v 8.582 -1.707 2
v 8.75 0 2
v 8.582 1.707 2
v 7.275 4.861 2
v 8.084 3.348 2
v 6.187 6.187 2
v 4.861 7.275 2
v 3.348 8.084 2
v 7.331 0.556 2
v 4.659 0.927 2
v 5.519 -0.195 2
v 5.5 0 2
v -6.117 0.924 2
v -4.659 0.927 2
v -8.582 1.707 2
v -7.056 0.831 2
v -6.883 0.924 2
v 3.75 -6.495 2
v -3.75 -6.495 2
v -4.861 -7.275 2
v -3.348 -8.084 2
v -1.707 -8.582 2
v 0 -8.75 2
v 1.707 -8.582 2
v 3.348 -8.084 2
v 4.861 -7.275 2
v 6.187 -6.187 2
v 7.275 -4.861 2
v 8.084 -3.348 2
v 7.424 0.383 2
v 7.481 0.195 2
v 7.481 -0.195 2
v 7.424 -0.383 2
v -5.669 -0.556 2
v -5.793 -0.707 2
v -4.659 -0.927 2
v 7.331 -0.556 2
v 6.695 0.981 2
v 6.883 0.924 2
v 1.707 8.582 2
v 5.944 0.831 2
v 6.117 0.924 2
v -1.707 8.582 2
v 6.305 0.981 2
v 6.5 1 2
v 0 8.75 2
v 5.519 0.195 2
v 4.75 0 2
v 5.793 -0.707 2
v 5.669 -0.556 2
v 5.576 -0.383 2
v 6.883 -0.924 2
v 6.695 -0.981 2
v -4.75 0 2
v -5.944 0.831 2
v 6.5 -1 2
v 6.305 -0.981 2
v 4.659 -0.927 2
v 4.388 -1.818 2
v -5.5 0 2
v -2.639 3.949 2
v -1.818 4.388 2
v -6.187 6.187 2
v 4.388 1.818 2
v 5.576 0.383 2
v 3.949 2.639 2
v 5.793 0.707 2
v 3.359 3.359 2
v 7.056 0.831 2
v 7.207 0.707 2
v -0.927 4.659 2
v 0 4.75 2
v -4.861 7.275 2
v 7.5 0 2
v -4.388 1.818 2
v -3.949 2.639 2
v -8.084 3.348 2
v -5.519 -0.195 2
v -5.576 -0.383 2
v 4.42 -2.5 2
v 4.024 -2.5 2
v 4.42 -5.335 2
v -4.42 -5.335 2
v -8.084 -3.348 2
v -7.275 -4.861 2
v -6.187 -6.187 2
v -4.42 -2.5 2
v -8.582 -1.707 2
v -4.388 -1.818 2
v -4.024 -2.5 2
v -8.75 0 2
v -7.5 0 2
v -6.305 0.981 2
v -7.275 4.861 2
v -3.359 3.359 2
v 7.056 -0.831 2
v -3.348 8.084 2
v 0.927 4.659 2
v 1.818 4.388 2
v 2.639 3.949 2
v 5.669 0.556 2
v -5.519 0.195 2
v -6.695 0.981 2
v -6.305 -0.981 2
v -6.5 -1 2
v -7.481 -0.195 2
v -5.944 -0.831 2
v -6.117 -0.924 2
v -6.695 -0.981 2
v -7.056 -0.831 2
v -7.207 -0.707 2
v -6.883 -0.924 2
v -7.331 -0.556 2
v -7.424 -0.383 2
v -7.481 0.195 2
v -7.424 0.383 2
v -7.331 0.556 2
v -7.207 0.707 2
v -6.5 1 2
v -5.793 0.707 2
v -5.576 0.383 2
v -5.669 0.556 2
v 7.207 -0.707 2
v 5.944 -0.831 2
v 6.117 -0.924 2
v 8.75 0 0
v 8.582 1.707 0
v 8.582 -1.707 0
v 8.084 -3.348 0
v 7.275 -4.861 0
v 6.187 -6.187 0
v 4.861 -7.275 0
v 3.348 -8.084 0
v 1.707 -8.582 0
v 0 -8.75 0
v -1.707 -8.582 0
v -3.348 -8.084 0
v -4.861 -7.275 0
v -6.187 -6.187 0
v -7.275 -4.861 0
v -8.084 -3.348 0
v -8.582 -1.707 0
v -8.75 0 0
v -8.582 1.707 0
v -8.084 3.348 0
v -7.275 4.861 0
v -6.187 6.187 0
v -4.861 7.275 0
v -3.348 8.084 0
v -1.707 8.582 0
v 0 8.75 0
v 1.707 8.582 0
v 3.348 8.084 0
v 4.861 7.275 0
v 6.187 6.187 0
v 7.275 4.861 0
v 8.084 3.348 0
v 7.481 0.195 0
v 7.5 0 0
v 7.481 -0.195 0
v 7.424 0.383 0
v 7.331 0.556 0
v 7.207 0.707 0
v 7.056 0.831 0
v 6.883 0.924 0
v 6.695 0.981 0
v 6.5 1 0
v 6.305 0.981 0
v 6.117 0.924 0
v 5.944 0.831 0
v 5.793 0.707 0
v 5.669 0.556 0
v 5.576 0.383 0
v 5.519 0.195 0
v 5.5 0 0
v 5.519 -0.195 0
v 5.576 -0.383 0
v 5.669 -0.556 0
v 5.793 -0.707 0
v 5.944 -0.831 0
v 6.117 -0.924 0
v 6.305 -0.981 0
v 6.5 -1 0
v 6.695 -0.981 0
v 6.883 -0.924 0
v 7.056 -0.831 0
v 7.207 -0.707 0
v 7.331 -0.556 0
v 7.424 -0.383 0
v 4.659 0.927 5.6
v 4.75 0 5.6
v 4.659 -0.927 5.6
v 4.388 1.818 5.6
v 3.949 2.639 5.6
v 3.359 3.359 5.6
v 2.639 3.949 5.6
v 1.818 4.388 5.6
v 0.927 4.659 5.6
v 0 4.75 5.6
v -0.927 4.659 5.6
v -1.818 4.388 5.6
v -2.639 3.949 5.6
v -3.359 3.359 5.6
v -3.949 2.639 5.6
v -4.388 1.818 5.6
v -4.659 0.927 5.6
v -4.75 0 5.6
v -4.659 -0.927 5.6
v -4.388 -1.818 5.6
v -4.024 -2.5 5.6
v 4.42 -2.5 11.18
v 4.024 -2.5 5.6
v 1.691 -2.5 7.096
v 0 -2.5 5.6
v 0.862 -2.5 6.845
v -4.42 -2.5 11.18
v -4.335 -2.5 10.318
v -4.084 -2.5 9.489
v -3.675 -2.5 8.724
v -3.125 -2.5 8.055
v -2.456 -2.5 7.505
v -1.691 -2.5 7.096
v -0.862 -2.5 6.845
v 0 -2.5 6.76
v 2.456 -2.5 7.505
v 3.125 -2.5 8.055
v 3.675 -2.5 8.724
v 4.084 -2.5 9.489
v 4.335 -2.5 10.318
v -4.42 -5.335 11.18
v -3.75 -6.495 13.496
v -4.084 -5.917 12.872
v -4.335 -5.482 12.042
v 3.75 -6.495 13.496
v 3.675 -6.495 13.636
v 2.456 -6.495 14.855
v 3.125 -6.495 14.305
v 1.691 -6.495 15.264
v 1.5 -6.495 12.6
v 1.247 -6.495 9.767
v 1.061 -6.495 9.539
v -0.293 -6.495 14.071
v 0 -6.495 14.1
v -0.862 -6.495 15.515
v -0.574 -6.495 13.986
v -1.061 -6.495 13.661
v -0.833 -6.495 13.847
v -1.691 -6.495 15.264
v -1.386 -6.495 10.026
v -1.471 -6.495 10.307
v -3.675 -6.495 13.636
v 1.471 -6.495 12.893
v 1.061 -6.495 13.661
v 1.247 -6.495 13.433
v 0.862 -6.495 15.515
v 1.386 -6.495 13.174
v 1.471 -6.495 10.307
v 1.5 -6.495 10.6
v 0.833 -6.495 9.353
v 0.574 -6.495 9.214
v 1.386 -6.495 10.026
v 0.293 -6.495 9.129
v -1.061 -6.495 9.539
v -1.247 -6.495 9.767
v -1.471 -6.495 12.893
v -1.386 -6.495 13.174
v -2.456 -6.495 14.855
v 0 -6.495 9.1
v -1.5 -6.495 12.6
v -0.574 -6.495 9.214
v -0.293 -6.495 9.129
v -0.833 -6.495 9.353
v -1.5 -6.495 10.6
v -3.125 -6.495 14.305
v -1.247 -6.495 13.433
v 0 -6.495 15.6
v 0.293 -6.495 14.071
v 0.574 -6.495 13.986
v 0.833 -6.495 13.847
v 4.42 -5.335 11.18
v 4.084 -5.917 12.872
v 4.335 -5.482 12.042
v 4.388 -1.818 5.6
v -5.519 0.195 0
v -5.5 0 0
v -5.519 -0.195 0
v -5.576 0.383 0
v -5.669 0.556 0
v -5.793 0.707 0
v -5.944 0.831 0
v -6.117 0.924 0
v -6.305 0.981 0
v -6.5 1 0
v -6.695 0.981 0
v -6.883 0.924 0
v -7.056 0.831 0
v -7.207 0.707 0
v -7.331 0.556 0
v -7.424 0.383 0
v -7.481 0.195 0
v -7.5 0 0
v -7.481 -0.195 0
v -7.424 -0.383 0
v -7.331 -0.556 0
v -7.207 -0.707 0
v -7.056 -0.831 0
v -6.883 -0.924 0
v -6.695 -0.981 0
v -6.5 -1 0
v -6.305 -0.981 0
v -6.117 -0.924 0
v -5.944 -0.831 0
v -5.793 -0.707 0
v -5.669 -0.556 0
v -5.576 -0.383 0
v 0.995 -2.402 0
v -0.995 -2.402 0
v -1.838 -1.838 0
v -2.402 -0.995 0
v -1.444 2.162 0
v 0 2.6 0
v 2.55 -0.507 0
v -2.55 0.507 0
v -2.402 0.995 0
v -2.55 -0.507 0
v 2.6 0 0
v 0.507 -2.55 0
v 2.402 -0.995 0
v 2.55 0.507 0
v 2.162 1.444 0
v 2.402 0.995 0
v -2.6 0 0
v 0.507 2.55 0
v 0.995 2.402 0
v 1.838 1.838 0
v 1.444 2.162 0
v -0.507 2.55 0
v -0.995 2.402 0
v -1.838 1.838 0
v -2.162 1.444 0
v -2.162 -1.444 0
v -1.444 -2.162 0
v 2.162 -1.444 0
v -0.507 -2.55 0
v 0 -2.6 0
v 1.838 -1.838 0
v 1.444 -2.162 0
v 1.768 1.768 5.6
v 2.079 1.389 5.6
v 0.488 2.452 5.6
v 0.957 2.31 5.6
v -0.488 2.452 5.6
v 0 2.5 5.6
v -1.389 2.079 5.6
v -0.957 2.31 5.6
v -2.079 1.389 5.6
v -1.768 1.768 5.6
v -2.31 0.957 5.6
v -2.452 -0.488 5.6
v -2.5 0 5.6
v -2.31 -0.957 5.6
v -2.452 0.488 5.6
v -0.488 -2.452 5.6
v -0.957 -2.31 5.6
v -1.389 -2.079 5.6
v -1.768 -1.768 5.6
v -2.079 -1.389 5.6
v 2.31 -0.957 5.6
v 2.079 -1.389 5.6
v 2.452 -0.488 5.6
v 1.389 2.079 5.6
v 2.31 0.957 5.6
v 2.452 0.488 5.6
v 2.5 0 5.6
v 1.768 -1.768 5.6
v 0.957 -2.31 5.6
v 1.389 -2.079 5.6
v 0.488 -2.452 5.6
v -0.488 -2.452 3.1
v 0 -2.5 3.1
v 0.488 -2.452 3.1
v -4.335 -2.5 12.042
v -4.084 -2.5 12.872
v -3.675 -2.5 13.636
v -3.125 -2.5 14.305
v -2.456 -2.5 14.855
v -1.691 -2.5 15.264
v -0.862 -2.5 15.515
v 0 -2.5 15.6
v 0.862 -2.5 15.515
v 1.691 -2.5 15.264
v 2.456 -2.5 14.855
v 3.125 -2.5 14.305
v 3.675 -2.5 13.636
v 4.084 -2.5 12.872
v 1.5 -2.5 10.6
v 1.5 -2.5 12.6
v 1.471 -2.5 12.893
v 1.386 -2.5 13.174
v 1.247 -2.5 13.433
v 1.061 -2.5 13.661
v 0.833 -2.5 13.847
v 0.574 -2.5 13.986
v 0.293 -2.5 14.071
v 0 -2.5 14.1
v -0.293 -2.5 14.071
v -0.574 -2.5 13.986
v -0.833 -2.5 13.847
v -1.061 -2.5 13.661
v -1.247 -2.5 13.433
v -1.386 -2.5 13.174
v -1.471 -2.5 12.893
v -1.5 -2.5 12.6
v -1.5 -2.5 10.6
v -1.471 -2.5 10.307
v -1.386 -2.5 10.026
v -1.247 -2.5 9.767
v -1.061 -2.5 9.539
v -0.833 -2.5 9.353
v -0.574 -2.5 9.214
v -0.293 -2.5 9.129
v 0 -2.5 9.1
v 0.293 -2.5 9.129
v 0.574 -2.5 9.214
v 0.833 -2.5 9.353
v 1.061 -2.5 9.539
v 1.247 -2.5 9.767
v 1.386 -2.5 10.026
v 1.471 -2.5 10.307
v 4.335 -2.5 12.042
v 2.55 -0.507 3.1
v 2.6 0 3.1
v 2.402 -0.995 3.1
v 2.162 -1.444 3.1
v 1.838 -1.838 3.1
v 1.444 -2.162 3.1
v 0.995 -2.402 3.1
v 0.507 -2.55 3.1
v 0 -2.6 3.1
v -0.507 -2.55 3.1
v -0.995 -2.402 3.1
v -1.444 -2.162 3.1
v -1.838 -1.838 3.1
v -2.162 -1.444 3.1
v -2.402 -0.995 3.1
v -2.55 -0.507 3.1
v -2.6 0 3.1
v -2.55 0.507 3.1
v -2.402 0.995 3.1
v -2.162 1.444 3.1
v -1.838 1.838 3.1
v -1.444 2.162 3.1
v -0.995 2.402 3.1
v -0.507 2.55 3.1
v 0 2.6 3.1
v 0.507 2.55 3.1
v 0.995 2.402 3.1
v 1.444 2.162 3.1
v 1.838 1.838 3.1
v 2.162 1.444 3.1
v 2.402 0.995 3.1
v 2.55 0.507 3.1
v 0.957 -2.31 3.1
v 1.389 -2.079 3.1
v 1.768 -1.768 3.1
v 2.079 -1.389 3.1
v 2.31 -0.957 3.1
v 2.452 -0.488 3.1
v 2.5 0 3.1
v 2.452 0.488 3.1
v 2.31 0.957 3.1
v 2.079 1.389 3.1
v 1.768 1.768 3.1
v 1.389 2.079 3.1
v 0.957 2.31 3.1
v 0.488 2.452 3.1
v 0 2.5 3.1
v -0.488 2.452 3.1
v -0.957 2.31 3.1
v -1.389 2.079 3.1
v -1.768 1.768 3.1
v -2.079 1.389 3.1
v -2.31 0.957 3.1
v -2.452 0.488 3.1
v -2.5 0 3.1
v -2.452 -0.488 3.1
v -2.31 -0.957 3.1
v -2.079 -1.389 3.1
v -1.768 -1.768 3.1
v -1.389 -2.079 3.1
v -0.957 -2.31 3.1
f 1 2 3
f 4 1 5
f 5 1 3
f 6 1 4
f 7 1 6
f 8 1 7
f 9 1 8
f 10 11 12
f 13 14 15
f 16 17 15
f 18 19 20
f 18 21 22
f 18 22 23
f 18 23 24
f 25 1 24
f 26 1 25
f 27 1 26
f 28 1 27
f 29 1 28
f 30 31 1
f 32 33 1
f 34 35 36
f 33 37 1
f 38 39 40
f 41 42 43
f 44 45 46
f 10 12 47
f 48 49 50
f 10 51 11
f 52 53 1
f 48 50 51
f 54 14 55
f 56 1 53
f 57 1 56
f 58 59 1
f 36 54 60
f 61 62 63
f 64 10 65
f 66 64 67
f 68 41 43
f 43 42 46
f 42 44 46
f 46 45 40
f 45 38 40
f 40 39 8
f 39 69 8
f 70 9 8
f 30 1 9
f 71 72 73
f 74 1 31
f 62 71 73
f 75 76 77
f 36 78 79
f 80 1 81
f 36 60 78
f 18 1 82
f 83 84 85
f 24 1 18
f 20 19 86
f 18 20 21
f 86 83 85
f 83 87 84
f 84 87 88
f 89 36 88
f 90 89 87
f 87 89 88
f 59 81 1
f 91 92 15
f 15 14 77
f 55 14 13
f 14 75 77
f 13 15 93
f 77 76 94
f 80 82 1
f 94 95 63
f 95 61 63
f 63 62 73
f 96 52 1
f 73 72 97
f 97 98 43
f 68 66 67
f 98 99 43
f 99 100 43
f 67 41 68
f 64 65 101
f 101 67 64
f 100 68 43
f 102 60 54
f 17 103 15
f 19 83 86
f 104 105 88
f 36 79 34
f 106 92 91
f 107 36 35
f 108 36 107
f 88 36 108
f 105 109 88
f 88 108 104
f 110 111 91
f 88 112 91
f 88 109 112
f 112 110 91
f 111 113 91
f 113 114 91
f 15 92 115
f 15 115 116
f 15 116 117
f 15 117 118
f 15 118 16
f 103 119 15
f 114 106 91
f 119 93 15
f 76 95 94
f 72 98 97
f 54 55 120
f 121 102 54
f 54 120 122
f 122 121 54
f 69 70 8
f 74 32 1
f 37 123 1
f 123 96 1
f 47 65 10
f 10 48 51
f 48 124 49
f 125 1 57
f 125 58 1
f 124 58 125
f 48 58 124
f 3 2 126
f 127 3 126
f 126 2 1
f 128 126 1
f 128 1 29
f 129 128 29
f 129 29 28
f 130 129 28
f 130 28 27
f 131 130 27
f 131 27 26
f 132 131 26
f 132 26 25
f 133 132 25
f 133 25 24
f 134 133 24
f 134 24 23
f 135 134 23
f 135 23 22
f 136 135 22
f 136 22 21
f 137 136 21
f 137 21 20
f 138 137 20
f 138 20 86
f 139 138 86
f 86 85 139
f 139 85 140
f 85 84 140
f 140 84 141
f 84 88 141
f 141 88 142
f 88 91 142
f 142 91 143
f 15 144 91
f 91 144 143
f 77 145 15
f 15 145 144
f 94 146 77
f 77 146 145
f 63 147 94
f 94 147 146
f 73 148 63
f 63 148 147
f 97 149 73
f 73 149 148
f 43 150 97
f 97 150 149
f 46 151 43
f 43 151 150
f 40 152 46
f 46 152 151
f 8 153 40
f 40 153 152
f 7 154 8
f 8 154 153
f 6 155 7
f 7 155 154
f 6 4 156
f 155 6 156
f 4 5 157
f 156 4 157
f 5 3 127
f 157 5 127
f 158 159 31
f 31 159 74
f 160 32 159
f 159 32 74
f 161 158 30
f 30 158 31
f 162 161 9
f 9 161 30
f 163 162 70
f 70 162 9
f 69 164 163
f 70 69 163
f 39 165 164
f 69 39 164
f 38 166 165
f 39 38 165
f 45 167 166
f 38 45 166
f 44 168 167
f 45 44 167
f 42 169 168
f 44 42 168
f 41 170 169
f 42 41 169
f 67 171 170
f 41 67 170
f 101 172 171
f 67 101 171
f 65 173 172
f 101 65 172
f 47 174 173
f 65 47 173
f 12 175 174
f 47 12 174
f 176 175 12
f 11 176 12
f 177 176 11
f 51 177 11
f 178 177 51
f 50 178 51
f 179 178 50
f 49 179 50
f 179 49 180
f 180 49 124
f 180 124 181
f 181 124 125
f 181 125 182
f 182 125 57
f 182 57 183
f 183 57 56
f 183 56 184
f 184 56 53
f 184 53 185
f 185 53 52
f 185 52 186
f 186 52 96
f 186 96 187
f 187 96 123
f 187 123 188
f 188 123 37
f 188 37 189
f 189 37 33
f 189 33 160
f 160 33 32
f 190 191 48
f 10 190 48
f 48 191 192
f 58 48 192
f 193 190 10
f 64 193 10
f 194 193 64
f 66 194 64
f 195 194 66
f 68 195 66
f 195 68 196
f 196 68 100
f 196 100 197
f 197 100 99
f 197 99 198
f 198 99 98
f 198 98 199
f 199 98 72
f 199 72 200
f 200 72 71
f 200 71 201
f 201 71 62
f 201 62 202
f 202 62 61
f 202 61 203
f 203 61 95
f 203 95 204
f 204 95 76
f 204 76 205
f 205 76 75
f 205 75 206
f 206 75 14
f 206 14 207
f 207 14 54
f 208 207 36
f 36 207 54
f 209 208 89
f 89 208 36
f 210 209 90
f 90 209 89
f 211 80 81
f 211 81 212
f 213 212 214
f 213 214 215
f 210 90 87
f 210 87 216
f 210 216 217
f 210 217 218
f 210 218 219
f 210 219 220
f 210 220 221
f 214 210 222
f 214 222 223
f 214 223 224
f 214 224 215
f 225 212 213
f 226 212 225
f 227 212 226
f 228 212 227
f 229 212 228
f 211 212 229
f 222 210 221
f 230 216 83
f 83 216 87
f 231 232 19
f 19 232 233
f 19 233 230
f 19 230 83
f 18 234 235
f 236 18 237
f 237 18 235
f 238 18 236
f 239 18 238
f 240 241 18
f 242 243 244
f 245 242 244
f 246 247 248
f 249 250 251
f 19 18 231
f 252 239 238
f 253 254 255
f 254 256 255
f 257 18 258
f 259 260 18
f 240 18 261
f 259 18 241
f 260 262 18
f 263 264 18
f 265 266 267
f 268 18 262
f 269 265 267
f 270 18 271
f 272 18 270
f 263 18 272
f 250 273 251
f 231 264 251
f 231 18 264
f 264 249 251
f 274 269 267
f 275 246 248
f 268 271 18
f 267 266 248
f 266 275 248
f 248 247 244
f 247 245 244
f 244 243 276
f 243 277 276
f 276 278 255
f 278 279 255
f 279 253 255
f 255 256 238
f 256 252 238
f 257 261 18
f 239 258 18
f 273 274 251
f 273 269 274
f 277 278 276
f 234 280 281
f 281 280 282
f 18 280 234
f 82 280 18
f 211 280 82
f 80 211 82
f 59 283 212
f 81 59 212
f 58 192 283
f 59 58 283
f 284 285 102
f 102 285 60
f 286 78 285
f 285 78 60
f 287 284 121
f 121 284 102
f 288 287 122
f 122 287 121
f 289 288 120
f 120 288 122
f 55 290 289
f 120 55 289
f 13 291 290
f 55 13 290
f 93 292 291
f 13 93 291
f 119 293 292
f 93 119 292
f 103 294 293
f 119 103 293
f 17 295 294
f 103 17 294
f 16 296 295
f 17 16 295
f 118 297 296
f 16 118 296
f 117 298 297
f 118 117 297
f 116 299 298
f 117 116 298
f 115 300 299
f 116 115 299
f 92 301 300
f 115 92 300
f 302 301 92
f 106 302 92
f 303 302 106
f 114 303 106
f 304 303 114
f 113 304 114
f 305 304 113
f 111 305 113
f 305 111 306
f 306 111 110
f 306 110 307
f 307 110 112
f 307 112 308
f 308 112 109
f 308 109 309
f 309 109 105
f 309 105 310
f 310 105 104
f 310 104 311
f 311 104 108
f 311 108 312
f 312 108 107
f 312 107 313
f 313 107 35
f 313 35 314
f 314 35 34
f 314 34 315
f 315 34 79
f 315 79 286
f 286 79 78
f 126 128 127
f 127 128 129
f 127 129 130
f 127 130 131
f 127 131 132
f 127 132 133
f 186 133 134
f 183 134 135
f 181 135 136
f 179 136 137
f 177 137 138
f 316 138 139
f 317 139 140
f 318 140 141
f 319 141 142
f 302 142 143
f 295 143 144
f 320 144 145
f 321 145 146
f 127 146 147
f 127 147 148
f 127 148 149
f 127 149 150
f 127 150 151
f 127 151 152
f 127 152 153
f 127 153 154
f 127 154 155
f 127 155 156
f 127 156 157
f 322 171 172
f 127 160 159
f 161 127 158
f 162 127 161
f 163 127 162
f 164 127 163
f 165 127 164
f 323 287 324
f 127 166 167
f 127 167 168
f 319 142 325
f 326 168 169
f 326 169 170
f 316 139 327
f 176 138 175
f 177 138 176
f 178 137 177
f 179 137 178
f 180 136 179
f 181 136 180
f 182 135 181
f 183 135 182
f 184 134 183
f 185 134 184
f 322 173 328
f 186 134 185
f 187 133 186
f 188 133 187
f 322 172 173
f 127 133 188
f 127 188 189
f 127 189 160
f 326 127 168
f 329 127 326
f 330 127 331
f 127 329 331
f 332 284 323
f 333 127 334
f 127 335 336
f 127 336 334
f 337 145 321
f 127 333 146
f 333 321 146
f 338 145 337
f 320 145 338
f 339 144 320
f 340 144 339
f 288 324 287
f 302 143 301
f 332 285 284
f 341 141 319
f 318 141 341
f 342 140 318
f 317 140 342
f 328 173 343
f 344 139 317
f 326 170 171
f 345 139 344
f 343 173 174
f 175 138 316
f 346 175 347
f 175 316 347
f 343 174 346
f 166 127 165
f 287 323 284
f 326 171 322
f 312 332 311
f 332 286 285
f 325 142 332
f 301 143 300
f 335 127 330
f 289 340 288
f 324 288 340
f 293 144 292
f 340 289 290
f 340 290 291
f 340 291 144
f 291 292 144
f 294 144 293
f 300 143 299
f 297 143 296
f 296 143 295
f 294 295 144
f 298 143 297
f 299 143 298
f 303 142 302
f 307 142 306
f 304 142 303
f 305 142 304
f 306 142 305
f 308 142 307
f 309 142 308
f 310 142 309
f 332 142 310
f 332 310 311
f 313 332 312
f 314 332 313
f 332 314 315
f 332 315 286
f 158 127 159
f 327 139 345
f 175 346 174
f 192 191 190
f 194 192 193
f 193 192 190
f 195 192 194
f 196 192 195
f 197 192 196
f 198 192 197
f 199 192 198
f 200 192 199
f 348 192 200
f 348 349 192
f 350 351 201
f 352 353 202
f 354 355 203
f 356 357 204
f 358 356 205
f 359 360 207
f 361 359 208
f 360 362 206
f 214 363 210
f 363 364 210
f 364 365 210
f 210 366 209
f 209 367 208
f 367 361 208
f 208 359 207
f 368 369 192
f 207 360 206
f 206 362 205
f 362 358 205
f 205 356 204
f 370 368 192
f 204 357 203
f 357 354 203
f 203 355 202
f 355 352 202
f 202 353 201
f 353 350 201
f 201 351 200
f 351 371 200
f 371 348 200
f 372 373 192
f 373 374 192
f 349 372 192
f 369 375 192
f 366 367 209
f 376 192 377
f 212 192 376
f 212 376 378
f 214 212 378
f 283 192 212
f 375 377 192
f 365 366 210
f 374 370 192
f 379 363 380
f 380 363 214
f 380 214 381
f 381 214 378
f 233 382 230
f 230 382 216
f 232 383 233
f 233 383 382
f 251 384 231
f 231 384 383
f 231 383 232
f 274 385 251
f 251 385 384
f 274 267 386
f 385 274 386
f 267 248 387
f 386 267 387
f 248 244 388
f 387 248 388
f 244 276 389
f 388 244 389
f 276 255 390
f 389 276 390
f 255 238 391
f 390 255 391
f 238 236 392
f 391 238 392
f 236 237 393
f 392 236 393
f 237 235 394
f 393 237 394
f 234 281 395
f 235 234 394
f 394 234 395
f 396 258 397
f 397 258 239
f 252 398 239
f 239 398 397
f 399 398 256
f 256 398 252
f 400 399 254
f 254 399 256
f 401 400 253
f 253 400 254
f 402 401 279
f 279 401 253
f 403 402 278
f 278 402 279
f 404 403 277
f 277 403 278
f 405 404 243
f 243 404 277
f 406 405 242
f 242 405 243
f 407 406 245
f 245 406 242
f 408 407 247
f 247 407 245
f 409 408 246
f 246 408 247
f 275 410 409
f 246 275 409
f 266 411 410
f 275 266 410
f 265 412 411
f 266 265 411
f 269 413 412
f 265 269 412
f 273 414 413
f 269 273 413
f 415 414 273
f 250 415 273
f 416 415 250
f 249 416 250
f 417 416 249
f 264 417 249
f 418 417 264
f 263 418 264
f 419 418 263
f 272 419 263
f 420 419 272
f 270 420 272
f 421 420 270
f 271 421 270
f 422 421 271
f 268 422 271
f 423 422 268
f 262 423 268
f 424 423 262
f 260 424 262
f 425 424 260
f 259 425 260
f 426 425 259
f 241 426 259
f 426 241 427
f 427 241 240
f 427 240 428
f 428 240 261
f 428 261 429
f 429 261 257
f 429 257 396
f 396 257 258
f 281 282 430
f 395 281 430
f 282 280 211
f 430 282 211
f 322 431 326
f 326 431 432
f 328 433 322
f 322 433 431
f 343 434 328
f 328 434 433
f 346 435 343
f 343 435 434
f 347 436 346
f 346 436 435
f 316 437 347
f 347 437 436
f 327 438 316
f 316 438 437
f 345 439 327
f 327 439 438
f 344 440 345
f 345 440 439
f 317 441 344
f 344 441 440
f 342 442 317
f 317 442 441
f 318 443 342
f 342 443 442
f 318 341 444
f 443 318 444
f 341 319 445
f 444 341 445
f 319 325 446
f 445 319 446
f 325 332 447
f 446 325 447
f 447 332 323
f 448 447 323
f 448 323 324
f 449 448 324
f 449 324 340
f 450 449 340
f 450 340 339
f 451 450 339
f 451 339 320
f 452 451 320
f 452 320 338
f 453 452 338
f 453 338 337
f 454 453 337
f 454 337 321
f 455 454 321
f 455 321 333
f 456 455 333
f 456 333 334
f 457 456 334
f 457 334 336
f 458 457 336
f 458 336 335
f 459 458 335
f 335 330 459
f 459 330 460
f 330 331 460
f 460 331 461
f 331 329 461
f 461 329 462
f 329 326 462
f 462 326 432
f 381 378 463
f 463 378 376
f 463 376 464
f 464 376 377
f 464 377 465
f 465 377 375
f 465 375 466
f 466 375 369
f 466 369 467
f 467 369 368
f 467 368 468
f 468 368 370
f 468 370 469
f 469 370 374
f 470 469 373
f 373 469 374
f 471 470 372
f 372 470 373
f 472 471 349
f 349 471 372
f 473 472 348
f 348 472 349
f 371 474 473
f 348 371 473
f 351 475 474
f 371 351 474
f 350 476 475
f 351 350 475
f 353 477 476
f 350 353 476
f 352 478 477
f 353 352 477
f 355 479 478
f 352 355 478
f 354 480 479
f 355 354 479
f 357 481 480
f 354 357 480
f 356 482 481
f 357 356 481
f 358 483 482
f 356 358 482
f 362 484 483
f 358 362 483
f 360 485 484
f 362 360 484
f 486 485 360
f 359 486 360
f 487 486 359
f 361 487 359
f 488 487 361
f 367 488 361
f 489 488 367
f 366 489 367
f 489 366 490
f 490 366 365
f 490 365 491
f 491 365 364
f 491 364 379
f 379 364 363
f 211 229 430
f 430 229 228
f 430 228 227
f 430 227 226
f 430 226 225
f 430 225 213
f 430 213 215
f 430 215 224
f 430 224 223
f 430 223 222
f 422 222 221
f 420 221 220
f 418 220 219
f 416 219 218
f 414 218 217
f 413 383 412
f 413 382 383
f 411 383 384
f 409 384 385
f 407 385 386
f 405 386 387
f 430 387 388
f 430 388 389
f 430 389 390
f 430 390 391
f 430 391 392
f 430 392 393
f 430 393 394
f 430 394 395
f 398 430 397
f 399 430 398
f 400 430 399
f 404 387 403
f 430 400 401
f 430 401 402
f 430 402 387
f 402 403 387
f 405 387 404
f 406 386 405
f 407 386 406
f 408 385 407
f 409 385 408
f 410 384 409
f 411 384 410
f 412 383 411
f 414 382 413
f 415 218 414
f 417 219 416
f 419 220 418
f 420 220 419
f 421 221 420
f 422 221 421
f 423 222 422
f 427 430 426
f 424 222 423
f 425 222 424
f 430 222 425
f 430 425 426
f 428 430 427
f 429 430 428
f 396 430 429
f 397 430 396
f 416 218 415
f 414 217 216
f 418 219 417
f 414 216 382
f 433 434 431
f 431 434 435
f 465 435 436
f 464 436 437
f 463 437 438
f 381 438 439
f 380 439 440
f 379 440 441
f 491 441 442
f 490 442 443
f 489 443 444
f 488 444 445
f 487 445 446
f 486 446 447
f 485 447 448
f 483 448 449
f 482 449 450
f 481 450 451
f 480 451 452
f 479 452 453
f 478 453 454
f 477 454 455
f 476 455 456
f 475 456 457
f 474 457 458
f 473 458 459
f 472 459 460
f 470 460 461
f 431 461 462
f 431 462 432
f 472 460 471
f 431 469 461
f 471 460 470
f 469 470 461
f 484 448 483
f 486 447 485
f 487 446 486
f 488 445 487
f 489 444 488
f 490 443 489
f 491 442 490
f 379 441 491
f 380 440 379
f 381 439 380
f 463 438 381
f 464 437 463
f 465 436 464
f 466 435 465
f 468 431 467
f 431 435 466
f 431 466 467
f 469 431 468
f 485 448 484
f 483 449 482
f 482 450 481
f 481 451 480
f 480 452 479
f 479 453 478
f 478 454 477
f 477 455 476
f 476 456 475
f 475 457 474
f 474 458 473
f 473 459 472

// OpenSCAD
$fn=32;

plug_bottom_radius=5.0/2; // must: 4.7/2 is 4.2/2
plug_bottom_height=5;
plug_total_height=12;
plug_top_height=plug_total_height-plug_bottom_height;
plug_top_radius=5.2/2; // must: 4.2/2  is: 3.9/2
plug_dive_length=17.2/2;

slate_height=3;
slate_side=10;

connector_distance=30;

cable_shoe_height=0.8;
cable_shoe_radius=7.2/2;

holder_mount_radius=17.5/2; // max. 17.5
holder_body_radius=9.5/2; // max. 17.5
holder_mount_height=2;
holder_body_height=plug_dive_length-slate_height;
holder_screw_radius=4/2;

holder_screw_radius=1.5/2;
holder_screw_offset=1.7;

contact_screw1_offset=5;
contact_screw2_offset=7;
contact_screw_radius=3/2;
contact_plate_height=10;
contact_plate_depth=holder_mount_radius;
contact_plate_width=8.84;
contact_plate_offset=0;
contact_plate_radius=7.5;
contact_plate_fn=6;

drill_hole_radius=2/2;
drill_hole_offset=6.5;

holder_total_height=holder_body_height+contact_plate_height;

module plug(){
	// plug bottom
	translate([0,0,-plug_dive_length+plug_bottom_height/2])
		cylinder(r=plug_bottom_radius,h=plug_bottom_height,center=true);
	// plug top
	translate([0,0,-plug_dive_length+(plug_bottom_height+plug_top_height)/2])
		cylinder(r=plug_top_radius,h=plug_top_height,center=true);
}

module holder(){
	difference(){
		union(){
			// holder mount
			translate([0,0,-slate_height-holder_mount_height/2])
				cylinder(r=holder_mount_radius,h=holder_mount_height,center=true);
			
			// holder body
			translate([0,0,-slate_height-holder_body_height/2])
				cylinder(r=holder_body_radius,h=holder_body_height,center=true);
			
			// contact plate
			intersection(){
				union(){
				translate([0,-(holder_mount_radius+plug_bottom_radius-contact_plate_offset)/2,-slate_height-holder_total_height/2+contact_plate_width/4])
					cube([contact_plate_width,holder_mount_radius-plug_bottom_radius+contact_plate_offset,holder_total_height-contact_plate_width/2],center=true);
				translate([0,-(holder_mount_radius+plug_bottom_radius-contact_plate_offset)/2,-slate_height-holder_total_height+contact_plate_width/2])
					rotate([90,0,0])
						cylinder(r=contact_plate_width/2,h=holder_mount_radius-plug_bottom_radius+contact_plate_offset,center=true);
				}
				translate([0,0,-holder_total_height/2-slate_height])
					cylinder(r=contact_plate_radius,h=holder_total_height,center=true,$fn=contact_plate_fn);
			}

		}
		/*
		// holder screw
		translate([0,0,-plug_dive_length+holder_screw_offset])
			rotate([90,0,0])
				cylinder(r=holder_screw_radius,h=30,center=true);
		*/

		// drill_hole 1
		translate([-drill_hole_offset,0,-slate_height-holder_mount_height/2])
				cylinder(r=drill_hole_radius,h=30,center=true);
		// drill_hole 2
		translate([drill_hole_offset,0,-slate_height-holder_mount_height/2])
				cylinder(r=drill_hole_radius,h=30,center=true);

		// contact screw  1
		translate([0,0,-plug_dive_length-contact_screw1_offset])
			rotate([90,0,0])
				cylinder(r=contact_screw_radius,h=30,center=true);

		// contact screw  2
		translate([0,0,-plug_dive_length-contact_screw2_offset])
			rotate([90,0,0])
				cylinder(r=contact_screw_radius,h=30,center=true);

		// contact screw gap
		translate([0,0,-plug_dive_length-contact_screw2_offset+(contact_screw2_offset-contact_screw1_offset)/2])
			cube([contact_screw_radius*2,30,contact_screw2_offset-contact_screw1_offset],center=true);

		plug();
	}

}

module slate(){
	difference(){
		translate([0,0,-slate_height/2])
			cube([slate_side,slate_side,slate_height],center=true);
		plug();
	}
}

//slate();
module holder_printable(){
rotate([0,180,0])
	translate([0,0,slate_height])
		holder();
}

//plug();
//holder();
holder_printable();
